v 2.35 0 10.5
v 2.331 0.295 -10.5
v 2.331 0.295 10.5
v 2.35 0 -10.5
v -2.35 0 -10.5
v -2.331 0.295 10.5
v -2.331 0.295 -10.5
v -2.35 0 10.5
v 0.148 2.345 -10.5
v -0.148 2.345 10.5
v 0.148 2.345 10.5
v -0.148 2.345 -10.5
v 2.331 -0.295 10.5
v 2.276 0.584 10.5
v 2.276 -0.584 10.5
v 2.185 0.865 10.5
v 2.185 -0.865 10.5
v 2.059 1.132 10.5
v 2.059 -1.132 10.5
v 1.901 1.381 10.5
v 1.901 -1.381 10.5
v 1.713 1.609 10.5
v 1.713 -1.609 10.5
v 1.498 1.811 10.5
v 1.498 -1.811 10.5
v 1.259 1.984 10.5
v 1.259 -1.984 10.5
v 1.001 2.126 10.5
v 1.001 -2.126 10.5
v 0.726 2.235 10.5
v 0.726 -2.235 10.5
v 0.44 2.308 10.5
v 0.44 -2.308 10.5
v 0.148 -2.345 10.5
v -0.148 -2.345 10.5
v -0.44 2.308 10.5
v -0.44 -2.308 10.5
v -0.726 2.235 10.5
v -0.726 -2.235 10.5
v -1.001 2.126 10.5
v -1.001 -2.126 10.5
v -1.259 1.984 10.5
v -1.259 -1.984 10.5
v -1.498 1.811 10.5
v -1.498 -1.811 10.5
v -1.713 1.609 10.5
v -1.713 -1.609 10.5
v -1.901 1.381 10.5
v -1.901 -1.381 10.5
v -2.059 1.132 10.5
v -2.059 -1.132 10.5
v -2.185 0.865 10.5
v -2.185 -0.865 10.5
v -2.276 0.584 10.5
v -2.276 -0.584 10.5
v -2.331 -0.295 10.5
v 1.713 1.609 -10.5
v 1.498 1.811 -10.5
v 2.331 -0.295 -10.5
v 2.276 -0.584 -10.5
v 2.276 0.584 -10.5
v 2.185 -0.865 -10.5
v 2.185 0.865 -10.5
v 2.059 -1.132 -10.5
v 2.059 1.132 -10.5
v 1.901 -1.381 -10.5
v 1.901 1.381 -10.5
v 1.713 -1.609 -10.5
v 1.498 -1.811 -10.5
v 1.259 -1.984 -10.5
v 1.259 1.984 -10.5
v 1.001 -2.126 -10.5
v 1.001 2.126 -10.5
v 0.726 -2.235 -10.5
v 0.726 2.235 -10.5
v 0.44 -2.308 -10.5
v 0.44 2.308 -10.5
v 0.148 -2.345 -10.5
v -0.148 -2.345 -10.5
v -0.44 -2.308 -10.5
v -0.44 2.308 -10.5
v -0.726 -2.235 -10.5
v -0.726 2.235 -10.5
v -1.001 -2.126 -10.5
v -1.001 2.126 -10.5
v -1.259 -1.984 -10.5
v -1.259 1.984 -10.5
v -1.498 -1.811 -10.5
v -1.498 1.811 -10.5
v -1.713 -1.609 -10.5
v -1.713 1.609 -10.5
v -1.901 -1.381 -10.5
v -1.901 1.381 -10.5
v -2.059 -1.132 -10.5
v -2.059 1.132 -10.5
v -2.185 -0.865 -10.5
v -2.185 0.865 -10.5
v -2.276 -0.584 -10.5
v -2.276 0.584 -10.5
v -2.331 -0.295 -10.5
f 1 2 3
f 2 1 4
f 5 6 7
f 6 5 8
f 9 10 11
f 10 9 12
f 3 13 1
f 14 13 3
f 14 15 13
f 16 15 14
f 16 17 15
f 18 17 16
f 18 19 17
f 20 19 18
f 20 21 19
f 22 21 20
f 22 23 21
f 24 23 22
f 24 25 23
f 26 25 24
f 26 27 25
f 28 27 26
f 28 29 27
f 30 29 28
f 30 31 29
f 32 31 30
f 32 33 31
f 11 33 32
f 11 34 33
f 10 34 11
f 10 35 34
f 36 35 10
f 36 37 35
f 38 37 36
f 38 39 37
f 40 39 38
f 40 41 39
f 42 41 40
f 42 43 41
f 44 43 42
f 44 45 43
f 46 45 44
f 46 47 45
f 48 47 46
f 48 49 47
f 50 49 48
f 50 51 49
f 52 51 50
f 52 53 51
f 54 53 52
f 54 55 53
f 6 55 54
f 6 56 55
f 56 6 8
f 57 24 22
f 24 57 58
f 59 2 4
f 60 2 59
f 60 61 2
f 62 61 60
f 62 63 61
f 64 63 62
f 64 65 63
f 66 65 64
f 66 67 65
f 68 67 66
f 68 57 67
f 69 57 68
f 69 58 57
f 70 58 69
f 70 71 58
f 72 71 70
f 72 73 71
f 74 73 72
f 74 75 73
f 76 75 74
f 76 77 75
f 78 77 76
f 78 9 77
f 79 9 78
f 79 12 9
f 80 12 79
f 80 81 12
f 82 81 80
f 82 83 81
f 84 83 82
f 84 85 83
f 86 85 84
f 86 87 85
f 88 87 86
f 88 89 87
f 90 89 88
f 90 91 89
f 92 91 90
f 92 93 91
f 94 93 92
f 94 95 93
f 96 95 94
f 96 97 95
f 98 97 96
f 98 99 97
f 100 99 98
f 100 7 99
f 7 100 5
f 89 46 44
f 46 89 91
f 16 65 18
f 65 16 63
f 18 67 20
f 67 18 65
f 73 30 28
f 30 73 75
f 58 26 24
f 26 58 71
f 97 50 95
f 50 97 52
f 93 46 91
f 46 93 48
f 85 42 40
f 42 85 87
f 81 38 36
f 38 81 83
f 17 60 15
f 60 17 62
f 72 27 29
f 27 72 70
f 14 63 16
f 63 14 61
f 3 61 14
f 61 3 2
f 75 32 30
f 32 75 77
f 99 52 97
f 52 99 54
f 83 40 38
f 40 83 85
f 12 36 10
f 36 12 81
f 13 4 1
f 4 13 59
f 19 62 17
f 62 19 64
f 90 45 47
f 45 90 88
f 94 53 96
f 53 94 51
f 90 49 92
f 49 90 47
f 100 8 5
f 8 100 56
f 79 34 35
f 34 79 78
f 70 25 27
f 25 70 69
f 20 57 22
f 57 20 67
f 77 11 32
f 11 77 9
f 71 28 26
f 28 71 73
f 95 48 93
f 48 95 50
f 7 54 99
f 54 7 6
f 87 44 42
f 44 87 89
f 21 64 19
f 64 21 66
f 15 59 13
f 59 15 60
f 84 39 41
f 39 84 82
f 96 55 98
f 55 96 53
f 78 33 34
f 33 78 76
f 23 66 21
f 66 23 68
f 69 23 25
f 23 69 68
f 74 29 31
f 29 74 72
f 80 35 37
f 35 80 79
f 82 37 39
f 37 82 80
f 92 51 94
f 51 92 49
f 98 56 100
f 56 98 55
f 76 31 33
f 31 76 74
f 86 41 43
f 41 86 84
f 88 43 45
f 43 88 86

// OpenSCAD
$fn = 50;


difference() {
	union() {
		translate(v = [0, 0, -10.5000000000]) {
			cylinder(h = 21, r = 2.3500000000);
		}
	}
	union() {
		translate(v = [0, 0, -100.0000000000]) {
			cylinder(h = 200, r = 0);
		}
	}
}
